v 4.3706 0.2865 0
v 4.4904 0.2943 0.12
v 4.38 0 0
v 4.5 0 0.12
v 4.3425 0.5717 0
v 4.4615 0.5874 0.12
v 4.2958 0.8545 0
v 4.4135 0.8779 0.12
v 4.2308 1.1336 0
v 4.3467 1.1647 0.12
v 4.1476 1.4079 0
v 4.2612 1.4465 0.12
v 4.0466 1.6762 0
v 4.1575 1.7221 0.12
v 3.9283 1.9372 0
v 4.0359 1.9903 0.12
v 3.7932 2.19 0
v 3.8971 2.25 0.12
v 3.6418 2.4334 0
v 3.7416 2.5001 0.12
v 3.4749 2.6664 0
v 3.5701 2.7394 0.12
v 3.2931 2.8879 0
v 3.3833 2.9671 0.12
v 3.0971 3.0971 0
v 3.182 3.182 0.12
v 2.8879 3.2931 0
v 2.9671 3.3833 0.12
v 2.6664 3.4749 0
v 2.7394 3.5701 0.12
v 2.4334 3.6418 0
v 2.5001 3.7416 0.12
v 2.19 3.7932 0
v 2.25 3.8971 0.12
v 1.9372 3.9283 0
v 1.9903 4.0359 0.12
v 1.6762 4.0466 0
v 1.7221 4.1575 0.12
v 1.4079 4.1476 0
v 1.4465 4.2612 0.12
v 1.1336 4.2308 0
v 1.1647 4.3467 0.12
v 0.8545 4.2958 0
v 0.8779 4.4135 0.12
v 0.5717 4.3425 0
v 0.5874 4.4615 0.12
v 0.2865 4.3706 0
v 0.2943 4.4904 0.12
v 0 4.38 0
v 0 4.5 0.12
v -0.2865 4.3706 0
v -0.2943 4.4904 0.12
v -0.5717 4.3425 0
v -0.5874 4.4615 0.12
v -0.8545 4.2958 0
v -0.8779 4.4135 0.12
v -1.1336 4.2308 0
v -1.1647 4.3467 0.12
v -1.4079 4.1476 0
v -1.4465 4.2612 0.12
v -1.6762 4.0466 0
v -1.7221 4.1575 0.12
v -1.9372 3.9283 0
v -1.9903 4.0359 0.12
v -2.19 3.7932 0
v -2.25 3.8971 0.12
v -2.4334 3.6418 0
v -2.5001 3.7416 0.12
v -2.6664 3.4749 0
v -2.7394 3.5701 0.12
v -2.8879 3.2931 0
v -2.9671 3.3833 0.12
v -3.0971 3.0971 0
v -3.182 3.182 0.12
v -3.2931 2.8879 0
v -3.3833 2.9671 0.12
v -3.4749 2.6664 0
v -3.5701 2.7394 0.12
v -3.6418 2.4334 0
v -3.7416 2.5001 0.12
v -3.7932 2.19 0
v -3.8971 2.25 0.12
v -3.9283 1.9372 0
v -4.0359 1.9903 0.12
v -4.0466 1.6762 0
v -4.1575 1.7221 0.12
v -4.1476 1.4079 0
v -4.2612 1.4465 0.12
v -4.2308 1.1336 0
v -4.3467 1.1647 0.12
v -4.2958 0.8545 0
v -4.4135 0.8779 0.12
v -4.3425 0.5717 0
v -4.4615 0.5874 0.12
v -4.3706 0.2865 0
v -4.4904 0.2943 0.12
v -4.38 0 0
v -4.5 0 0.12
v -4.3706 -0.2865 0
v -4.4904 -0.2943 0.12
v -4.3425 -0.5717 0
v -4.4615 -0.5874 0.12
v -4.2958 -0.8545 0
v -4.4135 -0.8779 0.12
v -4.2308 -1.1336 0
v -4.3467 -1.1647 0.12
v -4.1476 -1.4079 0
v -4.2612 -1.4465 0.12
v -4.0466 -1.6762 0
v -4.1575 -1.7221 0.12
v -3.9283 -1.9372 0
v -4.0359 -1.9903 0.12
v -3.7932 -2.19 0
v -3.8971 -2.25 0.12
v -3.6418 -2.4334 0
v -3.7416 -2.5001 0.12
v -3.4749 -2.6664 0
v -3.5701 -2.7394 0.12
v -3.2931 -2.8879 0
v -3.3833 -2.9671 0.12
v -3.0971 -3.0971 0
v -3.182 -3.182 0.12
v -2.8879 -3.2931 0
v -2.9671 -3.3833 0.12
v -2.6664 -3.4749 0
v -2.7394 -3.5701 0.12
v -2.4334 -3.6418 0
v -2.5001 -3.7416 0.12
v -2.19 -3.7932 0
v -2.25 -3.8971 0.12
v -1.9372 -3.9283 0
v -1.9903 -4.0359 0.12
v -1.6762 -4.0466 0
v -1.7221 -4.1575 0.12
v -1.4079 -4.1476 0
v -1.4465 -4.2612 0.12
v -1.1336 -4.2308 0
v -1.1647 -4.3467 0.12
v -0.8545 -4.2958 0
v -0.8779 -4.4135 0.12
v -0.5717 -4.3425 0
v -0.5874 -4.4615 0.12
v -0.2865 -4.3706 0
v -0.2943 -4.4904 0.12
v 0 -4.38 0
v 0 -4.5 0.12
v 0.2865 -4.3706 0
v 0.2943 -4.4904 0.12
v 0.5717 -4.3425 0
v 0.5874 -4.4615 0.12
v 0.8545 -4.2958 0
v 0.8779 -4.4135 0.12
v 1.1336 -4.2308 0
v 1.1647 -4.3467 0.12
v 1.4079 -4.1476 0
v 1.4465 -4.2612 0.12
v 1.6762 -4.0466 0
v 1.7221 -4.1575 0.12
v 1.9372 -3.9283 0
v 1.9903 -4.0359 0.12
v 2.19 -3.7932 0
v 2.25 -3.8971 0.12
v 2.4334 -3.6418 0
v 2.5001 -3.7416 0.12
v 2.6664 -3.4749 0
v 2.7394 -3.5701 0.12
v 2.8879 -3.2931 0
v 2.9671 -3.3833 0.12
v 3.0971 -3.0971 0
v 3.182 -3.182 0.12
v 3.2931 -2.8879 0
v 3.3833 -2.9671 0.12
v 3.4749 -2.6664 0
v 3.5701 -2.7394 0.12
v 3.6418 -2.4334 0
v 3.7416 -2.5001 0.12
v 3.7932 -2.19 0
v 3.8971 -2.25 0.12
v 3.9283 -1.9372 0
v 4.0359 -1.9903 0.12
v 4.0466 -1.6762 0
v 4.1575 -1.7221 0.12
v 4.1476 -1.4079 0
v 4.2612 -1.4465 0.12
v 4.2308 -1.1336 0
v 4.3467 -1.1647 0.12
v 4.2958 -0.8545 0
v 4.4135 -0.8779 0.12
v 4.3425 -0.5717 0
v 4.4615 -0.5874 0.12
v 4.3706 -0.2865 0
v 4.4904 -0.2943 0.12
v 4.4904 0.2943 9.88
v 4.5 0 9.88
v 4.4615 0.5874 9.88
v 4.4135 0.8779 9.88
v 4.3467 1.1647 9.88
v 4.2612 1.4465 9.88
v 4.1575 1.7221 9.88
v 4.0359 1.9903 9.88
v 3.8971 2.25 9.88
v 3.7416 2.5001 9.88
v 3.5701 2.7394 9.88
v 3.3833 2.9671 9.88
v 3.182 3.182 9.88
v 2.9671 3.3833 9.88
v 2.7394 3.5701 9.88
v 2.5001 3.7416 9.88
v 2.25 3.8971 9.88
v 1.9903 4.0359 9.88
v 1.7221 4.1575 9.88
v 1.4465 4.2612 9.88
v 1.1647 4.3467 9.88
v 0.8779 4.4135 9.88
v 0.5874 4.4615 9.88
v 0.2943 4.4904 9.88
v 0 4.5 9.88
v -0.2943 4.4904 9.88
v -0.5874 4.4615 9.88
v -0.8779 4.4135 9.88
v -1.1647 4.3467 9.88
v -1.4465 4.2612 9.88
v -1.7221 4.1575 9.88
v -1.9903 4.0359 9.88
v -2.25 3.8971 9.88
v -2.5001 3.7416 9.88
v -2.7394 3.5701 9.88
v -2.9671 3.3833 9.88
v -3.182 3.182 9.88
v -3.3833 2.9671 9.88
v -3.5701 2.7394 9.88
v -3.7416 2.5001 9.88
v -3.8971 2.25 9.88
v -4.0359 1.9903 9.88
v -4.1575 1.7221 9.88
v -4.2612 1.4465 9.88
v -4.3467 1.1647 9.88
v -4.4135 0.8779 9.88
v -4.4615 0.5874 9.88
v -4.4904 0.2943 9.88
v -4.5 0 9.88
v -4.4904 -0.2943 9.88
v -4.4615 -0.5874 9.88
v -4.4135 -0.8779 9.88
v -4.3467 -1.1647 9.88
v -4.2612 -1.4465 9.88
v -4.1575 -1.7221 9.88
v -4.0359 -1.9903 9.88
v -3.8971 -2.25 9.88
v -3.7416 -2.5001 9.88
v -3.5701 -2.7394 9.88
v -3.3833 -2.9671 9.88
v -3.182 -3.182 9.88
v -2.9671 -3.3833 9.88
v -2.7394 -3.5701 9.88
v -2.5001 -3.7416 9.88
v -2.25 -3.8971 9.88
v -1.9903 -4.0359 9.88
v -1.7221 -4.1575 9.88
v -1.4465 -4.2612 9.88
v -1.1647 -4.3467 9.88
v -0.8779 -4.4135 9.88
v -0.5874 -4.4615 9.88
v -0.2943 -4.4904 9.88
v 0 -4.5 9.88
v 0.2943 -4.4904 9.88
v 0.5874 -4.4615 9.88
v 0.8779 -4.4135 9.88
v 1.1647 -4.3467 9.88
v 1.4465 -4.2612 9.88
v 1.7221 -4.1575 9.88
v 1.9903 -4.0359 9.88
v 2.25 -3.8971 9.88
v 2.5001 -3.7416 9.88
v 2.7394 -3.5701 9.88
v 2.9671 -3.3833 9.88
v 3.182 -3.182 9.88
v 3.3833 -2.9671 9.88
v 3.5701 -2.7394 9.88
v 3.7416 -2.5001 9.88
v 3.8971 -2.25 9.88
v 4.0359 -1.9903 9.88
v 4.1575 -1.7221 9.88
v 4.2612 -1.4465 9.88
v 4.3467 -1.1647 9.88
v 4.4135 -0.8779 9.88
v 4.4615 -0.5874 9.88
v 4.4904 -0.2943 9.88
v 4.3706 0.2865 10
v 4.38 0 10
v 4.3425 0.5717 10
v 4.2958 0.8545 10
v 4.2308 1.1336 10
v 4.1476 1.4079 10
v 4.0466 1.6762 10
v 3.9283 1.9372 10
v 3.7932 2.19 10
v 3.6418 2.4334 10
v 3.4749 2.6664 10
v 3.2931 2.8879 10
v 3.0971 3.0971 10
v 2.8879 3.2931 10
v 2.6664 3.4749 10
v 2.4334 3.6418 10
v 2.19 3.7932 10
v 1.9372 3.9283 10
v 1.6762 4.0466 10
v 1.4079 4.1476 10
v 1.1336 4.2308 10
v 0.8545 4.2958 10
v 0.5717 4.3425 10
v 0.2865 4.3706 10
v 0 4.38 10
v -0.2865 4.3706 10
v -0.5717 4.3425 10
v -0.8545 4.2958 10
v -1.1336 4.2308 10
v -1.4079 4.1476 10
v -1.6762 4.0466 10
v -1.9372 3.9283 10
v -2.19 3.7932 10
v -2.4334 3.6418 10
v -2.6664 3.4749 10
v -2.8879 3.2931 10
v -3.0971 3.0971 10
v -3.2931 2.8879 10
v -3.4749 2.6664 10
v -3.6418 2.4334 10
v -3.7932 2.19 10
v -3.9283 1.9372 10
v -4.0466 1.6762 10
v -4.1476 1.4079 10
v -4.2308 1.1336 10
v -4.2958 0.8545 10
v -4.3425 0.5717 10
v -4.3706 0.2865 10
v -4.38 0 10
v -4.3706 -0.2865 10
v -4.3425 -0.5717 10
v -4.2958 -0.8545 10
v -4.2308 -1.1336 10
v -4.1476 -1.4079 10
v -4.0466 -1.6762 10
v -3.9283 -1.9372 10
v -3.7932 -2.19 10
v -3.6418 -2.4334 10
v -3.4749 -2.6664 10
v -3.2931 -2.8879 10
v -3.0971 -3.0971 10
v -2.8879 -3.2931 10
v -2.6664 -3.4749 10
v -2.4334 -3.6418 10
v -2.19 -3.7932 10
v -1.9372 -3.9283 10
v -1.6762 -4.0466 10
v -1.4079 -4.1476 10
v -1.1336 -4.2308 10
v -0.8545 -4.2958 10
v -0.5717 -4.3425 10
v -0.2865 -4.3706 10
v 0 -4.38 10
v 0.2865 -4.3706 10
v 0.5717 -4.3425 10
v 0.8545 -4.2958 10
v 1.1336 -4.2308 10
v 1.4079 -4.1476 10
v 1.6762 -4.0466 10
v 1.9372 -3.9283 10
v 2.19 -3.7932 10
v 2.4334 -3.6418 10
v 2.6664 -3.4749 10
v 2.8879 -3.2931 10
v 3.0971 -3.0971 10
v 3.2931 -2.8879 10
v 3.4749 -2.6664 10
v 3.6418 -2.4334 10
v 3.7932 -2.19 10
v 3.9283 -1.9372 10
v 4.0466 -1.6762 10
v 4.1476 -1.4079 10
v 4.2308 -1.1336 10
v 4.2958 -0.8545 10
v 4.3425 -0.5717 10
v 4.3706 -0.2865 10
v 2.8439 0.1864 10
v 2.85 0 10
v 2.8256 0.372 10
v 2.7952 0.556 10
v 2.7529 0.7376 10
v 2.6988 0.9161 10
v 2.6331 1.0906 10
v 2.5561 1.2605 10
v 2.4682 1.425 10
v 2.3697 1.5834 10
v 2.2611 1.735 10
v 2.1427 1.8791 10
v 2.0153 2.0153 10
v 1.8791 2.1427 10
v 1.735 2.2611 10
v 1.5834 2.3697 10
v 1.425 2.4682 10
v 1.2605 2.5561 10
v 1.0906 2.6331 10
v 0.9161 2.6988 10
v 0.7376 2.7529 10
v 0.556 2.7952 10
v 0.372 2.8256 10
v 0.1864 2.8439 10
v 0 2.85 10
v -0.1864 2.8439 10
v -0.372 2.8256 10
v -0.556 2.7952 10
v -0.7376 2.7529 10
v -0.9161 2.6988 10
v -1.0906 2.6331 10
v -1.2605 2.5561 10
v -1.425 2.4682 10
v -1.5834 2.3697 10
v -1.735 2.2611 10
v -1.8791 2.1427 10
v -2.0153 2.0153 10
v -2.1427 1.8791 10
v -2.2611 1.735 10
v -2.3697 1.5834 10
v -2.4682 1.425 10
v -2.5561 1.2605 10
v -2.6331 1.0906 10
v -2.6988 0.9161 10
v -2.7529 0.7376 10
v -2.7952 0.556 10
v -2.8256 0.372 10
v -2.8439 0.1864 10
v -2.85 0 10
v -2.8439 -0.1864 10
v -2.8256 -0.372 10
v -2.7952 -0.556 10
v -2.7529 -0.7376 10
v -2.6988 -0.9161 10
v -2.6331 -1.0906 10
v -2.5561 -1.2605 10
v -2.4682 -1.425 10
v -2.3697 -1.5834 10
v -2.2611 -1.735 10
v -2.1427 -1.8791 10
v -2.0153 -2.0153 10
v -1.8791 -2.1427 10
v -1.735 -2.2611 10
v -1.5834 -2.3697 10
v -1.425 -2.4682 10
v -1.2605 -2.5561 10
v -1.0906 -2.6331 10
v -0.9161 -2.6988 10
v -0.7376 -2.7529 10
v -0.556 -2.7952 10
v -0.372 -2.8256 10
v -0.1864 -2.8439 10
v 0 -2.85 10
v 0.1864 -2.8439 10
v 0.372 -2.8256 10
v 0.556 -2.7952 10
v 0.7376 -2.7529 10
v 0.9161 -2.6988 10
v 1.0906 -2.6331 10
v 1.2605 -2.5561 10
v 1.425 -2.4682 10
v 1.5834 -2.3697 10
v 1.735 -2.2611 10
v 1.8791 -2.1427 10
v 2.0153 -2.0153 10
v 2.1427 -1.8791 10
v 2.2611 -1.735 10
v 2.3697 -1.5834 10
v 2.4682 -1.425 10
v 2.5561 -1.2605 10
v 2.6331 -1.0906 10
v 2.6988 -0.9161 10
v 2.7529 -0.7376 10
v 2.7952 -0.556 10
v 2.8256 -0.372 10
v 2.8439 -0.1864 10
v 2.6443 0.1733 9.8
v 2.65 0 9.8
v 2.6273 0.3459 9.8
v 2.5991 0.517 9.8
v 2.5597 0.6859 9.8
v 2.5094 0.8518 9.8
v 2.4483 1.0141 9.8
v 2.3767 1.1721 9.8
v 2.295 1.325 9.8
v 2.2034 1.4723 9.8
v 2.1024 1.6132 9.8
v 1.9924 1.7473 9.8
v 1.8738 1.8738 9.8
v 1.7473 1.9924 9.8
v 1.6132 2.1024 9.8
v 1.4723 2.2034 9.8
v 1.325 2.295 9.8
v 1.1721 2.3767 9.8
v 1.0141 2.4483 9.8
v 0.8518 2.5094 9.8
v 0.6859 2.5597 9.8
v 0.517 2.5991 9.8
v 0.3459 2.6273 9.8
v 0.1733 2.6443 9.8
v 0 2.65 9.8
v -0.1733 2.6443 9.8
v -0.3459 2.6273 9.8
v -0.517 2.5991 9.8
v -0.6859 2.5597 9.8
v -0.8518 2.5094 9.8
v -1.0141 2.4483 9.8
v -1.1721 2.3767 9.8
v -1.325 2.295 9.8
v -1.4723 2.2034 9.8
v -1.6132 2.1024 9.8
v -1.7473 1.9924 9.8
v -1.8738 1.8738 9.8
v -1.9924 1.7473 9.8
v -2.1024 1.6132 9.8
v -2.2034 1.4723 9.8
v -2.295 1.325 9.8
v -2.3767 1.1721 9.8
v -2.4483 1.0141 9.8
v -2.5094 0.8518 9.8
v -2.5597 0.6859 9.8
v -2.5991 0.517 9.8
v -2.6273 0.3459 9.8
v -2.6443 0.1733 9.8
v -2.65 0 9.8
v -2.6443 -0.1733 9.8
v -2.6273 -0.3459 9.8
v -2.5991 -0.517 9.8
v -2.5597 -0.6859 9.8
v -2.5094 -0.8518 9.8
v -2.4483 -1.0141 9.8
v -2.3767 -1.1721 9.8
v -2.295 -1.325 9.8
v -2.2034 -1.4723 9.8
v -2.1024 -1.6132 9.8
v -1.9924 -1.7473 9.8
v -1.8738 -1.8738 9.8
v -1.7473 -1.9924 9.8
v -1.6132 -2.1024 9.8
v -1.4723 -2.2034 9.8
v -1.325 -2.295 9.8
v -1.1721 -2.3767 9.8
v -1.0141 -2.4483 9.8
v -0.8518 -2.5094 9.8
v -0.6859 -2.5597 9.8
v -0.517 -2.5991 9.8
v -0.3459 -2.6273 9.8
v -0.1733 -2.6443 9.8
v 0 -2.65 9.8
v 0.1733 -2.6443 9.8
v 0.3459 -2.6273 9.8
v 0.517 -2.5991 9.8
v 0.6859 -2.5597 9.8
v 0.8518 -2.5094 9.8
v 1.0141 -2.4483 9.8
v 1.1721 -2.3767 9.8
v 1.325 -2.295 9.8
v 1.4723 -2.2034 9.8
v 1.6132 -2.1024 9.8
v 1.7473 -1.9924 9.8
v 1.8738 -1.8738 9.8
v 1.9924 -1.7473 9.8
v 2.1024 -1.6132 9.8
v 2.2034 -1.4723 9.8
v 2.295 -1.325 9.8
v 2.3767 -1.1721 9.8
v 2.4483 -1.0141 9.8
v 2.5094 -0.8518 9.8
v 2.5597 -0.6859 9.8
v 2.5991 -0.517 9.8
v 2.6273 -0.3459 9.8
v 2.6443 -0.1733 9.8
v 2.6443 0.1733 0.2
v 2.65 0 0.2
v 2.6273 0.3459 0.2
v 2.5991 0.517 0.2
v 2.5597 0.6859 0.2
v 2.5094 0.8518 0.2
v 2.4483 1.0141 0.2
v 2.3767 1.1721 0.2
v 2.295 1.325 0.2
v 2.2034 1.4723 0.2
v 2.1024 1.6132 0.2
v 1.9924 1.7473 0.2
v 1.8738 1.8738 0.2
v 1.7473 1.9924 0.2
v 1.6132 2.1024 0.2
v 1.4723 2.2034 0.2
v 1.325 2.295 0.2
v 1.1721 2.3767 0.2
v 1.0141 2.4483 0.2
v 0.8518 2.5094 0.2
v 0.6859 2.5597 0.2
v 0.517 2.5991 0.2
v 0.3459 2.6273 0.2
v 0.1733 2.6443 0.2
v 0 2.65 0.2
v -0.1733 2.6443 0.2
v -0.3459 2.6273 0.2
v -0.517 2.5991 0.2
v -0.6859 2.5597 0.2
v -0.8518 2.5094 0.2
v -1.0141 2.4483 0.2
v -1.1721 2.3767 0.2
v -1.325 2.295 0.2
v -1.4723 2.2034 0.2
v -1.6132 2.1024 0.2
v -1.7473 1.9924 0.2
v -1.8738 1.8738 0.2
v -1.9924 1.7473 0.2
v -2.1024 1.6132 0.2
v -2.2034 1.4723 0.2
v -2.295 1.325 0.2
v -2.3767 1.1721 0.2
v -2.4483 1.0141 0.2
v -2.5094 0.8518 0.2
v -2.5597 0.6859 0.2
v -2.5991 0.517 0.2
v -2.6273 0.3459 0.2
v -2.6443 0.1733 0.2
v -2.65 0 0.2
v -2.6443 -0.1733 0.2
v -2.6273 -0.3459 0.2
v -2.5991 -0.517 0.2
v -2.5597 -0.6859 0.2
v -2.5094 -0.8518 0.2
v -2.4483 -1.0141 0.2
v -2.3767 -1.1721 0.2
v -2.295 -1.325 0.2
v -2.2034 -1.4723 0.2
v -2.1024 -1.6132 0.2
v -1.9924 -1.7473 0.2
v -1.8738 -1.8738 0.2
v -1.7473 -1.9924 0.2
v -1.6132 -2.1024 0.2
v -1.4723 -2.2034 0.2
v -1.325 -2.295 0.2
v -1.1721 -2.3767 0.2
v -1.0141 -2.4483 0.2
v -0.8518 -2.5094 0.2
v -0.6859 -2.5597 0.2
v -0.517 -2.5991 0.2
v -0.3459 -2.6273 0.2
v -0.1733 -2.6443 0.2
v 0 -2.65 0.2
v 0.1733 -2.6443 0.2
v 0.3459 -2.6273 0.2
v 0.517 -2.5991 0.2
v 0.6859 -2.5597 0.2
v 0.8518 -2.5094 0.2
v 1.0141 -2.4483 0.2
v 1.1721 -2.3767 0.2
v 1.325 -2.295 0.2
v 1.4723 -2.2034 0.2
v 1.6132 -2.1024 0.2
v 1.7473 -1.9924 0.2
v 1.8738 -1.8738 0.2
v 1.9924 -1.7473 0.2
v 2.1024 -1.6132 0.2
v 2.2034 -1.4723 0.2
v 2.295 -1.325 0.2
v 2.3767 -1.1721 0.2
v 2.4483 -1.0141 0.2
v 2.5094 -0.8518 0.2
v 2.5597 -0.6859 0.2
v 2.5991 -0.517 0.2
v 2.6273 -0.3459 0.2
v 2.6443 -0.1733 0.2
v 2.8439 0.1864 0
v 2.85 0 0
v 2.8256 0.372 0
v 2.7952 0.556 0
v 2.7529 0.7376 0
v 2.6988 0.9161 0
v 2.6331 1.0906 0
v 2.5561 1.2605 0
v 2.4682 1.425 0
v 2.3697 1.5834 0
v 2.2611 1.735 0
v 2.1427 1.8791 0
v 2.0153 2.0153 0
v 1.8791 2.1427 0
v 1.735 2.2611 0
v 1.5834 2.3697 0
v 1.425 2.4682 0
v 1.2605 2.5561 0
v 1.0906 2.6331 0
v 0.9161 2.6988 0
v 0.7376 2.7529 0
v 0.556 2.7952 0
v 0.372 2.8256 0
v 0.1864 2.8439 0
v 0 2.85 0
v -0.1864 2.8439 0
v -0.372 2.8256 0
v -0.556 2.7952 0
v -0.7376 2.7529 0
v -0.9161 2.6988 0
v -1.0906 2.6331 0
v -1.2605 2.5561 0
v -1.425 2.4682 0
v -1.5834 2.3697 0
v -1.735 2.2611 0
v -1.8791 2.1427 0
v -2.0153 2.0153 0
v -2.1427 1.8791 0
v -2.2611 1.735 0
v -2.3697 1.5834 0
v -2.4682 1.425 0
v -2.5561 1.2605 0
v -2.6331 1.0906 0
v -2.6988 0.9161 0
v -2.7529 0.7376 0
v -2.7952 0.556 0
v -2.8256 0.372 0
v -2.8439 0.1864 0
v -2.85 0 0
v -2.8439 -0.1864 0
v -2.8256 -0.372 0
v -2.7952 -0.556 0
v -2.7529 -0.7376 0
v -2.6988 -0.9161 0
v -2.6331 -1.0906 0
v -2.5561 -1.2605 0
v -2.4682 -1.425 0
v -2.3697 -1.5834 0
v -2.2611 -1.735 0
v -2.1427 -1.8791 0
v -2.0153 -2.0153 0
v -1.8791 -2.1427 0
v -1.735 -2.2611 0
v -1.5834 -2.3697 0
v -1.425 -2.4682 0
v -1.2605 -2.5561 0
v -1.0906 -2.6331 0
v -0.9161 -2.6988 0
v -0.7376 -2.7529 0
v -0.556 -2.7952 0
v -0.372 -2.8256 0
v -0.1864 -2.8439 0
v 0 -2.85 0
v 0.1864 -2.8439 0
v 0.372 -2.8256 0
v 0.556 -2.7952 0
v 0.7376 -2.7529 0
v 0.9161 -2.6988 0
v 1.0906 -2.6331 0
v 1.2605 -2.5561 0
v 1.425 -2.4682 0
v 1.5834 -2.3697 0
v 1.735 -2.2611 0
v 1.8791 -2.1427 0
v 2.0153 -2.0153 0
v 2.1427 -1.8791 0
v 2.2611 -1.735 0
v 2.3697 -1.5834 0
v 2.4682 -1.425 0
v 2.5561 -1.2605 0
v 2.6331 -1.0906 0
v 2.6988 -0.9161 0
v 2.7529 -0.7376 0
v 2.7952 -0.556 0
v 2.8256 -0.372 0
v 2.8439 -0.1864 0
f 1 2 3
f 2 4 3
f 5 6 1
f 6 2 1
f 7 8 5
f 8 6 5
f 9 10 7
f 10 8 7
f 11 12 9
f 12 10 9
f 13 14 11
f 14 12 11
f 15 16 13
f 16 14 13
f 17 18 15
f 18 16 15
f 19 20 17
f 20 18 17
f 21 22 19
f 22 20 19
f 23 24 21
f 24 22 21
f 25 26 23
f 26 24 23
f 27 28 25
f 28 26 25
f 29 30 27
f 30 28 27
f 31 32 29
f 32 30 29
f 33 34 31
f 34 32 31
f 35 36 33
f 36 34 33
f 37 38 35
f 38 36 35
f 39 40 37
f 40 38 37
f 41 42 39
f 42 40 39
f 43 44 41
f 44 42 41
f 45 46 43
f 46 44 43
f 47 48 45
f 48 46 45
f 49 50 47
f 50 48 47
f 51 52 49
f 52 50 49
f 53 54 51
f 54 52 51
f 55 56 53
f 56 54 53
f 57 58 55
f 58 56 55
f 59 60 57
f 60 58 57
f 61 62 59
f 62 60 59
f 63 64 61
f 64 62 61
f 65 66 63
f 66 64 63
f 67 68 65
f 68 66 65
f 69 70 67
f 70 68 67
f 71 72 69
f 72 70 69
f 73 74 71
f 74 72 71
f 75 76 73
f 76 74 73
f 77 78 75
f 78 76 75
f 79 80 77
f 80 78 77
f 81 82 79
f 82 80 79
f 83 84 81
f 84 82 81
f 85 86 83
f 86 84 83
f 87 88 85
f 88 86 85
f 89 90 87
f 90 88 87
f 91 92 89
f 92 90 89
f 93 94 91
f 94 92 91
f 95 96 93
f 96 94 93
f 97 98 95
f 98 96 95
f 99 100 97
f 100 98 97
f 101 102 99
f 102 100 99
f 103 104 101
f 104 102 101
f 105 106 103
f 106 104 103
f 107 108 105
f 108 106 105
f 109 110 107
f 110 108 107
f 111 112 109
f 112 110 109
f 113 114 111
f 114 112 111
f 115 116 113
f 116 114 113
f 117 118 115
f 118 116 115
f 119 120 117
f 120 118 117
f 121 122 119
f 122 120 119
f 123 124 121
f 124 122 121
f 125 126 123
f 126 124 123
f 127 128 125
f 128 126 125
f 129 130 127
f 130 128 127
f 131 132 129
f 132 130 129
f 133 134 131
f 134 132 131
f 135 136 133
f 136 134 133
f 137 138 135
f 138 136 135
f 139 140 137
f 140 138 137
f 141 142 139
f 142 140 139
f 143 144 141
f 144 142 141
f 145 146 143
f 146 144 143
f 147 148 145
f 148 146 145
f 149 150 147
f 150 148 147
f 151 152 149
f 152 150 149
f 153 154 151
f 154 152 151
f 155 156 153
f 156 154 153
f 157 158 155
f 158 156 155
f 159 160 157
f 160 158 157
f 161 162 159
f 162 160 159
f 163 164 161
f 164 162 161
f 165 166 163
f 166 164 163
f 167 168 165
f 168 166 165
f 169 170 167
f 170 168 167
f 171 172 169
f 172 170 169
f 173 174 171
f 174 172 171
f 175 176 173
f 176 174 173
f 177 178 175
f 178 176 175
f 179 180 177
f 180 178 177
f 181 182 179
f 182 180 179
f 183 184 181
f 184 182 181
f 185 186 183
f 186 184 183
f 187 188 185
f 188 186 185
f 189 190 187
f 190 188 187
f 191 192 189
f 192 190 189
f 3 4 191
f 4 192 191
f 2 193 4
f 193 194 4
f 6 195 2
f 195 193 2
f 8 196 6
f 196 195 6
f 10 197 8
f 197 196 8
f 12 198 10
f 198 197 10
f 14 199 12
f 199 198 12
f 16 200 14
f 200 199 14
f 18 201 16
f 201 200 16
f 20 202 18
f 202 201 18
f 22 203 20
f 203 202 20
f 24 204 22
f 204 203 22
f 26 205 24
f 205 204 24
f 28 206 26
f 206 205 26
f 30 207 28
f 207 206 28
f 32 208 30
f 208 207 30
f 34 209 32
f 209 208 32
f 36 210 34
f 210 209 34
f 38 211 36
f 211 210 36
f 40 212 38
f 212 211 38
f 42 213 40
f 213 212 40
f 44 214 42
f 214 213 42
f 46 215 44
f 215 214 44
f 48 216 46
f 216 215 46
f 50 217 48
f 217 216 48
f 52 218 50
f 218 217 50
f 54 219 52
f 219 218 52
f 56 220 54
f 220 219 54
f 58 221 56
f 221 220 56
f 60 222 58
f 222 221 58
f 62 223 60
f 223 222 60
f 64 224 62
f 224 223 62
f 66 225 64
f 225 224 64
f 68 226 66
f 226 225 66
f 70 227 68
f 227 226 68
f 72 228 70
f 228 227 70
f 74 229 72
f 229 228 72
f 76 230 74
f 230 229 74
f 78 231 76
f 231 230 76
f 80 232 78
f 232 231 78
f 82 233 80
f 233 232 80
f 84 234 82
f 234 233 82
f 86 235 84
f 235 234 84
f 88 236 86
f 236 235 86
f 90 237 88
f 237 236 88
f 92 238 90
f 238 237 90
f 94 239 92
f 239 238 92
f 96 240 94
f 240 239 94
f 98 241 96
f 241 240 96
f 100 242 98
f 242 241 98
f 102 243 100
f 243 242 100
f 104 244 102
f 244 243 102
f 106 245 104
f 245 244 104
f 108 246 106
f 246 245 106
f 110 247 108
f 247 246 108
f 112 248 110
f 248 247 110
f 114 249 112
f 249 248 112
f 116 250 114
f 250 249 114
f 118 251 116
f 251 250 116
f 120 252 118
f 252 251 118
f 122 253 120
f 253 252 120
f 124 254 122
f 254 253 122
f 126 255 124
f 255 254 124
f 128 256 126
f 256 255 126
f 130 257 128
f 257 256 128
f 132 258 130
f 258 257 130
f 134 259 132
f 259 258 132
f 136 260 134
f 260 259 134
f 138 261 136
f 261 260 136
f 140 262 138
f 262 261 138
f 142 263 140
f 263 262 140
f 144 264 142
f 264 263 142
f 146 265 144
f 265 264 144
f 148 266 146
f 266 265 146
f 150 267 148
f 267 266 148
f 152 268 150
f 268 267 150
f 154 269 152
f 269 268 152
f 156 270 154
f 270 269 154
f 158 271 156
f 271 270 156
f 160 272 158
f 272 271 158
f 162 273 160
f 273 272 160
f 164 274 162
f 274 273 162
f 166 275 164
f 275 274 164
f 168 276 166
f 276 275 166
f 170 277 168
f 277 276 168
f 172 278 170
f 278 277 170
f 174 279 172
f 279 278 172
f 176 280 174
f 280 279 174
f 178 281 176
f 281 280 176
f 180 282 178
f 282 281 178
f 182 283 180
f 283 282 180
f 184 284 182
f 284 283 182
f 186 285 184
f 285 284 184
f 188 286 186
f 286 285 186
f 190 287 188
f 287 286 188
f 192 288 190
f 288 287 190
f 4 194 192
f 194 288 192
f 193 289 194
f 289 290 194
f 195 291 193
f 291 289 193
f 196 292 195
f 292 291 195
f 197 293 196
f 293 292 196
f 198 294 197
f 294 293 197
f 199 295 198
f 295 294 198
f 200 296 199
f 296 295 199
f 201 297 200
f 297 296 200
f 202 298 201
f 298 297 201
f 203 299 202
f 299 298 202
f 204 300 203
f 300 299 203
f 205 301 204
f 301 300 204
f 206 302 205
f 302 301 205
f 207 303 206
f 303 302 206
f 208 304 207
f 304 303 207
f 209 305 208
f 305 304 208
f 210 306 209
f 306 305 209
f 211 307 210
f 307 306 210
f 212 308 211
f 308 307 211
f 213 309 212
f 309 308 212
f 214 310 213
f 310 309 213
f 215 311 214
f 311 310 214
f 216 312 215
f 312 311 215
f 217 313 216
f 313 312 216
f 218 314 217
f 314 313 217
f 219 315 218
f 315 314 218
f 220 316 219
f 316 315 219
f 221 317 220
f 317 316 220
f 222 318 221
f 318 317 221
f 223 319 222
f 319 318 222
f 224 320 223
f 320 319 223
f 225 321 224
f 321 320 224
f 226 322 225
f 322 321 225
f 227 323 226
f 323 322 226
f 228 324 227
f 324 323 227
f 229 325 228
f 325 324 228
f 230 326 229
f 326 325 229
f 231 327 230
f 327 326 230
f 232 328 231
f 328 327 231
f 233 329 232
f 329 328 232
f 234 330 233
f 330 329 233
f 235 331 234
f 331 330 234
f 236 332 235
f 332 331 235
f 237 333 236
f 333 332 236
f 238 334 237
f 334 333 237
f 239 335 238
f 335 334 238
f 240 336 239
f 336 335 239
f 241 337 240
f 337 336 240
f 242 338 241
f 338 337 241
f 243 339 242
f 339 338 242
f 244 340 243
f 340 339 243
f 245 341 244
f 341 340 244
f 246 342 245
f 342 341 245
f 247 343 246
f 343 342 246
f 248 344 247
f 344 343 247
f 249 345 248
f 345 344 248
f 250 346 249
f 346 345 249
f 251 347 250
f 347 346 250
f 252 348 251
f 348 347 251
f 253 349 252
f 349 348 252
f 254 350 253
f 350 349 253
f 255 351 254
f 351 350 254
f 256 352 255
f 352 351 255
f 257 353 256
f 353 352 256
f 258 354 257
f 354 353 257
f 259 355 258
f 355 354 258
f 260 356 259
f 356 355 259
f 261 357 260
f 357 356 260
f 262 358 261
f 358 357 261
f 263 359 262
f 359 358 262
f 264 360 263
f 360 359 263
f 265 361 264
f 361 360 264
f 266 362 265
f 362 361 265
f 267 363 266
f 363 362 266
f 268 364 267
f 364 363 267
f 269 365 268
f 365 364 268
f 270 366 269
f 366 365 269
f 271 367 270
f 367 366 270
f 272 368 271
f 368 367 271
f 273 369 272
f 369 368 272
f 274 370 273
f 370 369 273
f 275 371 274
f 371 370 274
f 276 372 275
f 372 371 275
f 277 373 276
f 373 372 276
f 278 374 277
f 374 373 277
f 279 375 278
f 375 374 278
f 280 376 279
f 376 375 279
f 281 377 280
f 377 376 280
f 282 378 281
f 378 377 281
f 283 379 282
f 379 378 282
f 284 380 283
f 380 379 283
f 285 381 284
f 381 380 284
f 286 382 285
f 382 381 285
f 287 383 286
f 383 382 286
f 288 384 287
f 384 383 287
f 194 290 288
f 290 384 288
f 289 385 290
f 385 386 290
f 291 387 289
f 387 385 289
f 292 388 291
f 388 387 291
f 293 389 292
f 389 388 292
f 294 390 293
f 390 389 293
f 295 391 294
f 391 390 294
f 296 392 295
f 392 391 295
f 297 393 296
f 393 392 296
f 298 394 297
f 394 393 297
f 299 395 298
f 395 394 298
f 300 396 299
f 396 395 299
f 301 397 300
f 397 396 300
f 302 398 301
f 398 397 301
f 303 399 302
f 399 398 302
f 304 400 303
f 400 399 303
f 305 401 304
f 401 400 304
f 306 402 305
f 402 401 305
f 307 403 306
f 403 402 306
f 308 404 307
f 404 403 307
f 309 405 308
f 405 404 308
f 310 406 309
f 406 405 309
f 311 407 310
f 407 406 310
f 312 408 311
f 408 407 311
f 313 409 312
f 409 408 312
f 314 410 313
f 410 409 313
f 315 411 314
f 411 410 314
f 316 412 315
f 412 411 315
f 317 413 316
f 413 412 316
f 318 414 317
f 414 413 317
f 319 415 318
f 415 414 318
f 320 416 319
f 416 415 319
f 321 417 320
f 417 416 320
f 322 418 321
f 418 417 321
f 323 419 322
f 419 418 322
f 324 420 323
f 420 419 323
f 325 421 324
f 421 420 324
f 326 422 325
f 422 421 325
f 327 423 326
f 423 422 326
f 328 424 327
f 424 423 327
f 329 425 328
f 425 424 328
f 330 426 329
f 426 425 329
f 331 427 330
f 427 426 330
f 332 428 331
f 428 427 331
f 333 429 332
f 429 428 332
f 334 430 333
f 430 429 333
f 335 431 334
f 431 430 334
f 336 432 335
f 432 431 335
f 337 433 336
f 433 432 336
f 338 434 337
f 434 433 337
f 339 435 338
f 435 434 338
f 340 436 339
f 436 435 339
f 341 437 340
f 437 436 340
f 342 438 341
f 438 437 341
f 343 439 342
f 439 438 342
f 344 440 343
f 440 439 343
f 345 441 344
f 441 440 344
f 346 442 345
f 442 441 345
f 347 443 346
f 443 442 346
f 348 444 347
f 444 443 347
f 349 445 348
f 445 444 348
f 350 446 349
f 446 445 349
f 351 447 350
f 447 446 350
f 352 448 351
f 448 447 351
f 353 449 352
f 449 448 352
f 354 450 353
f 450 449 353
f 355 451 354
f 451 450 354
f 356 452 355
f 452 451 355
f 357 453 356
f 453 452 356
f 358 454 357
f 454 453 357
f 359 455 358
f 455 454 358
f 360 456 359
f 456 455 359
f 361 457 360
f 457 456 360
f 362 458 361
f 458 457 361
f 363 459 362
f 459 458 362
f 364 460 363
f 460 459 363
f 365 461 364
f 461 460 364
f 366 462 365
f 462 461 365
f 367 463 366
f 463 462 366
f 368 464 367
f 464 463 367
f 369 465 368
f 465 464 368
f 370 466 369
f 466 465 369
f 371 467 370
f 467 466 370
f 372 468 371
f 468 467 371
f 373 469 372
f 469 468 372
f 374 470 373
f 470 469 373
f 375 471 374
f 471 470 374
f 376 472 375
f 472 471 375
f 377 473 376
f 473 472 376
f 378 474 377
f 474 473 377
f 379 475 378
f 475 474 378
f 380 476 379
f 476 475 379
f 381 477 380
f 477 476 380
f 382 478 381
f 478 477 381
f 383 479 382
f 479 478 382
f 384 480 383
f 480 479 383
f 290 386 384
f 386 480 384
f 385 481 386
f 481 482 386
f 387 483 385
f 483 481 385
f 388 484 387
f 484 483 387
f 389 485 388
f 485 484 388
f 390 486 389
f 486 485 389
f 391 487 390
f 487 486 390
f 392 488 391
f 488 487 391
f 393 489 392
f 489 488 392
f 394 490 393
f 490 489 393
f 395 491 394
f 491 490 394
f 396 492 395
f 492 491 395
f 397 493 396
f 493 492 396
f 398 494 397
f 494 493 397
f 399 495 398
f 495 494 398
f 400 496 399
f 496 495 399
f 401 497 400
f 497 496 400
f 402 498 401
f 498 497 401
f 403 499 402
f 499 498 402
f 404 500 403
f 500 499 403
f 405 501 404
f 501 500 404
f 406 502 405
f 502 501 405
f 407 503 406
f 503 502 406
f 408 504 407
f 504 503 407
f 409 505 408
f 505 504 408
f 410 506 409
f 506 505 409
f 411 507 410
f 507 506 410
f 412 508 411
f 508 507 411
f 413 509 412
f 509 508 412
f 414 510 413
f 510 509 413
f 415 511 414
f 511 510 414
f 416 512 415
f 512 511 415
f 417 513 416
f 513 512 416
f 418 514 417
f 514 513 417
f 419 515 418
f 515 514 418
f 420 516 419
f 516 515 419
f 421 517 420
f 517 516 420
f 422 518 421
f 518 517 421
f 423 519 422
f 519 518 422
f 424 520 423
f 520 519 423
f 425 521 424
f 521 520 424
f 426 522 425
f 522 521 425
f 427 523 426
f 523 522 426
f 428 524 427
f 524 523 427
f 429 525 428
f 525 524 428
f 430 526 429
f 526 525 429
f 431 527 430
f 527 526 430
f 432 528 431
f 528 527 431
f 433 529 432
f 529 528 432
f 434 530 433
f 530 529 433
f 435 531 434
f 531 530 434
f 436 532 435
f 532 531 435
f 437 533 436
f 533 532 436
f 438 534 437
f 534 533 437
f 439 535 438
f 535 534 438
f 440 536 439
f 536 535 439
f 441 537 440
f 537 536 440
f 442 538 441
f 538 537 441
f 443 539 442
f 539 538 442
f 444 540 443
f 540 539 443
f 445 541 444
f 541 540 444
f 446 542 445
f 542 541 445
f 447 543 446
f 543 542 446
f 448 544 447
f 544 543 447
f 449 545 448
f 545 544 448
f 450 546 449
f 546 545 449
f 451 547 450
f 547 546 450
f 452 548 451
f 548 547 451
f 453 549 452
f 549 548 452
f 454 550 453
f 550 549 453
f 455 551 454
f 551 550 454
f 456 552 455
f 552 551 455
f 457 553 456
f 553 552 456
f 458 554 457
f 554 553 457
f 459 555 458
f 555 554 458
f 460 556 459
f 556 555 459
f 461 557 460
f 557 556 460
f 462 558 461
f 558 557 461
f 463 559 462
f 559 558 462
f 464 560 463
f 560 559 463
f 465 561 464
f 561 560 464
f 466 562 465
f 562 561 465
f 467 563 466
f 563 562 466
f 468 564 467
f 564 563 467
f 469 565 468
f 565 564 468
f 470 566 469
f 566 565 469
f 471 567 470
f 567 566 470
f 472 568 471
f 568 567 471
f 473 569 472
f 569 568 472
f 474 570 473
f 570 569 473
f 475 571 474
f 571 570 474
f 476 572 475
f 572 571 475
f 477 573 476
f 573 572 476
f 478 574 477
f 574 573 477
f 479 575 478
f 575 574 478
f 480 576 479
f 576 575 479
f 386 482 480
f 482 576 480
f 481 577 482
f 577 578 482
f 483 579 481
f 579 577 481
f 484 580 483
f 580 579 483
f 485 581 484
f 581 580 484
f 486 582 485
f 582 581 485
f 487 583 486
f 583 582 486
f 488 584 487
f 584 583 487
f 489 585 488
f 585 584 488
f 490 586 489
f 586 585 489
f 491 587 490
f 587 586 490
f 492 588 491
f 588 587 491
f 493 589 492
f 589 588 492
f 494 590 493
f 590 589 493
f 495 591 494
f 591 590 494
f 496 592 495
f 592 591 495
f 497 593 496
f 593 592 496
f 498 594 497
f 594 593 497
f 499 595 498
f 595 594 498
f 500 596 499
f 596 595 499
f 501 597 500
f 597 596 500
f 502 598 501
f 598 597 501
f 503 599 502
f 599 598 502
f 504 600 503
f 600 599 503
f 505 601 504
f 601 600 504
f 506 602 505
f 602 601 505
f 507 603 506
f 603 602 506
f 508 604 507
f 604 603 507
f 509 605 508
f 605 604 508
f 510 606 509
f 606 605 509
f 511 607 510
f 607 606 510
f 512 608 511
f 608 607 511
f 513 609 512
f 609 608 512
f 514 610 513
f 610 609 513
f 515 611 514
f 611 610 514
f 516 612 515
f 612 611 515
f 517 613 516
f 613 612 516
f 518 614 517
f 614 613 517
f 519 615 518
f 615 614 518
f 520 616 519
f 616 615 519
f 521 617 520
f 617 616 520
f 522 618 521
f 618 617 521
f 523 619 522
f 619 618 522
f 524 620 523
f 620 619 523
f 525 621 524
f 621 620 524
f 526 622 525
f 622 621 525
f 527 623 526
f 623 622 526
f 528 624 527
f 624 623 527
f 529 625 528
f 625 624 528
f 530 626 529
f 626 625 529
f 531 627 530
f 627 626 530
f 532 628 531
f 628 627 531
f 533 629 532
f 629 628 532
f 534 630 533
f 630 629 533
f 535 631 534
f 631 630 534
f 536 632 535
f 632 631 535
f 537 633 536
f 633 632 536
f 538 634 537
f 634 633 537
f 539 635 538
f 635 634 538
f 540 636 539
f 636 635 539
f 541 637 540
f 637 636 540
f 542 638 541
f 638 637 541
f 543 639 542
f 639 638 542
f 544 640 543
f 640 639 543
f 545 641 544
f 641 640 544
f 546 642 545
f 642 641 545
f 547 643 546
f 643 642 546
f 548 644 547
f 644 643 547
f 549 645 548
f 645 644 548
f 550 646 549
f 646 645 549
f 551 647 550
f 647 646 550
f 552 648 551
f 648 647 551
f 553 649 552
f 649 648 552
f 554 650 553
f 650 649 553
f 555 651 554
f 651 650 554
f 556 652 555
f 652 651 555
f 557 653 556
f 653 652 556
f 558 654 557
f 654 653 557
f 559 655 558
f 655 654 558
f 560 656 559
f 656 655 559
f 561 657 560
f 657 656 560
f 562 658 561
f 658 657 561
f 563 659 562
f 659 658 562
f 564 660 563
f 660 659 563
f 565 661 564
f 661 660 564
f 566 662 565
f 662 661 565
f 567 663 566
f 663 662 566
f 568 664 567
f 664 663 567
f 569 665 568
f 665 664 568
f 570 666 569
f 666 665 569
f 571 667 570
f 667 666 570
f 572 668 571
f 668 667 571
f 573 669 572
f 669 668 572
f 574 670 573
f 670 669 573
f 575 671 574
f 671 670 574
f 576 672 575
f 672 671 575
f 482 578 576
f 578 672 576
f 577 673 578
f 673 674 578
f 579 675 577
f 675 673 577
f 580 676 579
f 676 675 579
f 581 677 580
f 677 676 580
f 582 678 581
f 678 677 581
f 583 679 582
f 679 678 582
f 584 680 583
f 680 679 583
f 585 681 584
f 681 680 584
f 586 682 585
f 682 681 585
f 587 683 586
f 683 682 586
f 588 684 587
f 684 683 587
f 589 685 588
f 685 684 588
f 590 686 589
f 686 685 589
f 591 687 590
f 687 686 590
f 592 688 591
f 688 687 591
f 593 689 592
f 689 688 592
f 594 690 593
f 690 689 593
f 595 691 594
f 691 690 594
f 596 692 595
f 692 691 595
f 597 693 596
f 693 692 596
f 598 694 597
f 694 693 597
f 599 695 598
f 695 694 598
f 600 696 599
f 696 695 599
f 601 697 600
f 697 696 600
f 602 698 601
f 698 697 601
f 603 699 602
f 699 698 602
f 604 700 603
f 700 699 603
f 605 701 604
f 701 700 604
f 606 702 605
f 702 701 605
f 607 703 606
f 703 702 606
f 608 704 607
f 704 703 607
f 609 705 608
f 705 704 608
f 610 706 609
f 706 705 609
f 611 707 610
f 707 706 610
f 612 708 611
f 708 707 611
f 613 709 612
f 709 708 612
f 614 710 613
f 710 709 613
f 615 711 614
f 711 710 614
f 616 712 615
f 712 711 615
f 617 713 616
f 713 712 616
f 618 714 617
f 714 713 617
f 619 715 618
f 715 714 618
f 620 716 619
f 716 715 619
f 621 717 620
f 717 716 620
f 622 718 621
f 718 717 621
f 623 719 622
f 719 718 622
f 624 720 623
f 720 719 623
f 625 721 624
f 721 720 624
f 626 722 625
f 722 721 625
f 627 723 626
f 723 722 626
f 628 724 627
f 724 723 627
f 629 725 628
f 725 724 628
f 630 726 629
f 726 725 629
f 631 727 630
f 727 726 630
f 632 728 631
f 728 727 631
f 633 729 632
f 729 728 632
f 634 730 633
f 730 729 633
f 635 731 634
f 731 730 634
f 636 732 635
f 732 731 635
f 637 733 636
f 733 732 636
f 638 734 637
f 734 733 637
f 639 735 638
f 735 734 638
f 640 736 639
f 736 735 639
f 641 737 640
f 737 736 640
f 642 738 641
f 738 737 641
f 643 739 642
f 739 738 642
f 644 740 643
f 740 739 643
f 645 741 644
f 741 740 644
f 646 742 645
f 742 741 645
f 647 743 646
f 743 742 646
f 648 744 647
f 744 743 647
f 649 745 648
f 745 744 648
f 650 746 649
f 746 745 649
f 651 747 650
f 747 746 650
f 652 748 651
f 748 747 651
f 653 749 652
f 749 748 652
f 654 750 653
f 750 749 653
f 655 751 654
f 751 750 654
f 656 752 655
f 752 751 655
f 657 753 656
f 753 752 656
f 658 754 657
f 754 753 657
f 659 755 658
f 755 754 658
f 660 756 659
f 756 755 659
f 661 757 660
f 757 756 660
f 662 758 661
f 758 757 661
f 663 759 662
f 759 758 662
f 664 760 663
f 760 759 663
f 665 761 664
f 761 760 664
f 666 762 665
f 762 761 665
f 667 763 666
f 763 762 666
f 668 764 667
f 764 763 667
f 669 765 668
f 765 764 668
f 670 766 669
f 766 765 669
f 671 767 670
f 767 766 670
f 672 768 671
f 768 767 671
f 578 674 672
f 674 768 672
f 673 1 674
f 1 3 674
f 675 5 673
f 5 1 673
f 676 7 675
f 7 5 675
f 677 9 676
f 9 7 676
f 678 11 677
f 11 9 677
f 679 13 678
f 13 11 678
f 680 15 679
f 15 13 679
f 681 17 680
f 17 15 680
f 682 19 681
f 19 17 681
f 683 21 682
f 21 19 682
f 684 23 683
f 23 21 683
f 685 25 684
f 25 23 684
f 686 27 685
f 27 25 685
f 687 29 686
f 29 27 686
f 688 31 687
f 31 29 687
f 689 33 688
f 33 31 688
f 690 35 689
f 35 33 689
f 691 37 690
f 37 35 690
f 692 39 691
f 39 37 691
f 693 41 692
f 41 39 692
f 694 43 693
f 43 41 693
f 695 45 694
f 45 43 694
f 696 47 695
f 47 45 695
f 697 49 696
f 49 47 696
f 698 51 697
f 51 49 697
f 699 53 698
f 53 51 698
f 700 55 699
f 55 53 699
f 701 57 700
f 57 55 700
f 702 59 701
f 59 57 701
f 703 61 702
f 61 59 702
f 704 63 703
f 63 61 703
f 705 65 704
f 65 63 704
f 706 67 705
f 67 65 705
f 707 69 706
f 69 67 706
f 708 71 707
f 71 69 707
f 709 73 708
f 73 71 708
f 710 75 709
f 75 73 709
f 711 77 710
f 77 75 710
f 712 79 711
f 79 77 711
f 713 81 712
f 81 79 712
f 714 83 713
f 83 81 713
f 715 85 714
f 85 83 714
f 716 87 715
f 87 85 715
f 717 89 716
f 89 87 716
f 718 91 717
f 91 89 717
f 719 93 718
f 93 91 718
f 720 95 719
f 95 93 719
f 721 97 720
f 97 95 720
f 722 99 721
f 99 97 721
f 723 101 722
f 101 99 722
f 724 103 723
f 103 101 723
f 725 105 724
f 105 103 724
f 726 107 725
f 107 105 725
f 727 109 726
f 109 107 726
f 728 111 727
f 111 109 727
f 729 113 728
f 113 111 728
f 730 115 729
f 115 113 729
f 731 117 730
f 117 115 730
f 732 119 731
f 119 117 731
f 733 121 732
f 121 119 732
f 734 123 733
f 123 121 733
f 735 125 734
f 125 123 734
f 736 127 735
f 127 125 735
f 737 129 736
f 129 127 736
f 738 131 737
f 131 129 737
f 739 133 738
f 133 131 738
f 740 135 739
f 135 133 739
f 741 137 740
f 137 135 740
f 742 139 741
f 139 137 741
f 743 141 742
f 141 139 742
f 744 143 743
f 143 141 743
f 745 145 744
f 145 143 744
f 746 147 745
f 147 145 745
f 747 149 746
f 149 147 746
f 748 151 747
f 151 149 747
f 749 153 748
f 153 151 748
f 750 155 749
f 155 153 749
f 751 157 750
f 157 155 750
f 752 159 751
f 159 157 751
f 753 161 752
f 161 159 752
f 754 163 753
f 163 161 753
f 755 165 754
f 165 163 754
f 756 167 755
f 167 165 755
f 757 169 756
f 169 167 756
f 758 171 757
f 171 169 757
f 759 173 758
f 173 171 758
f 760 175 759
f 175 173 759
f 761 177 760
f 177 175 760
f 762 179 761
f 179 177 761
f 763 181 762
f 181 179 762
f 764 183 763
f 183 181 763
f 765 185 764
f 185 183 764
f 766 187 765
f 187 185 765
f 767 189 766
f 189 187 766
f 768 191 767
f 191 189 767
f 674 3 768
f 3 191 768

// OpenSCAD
// OOMP generic catalogue model; units: mm.
// Stud length is additional to body depth. Tapping depths are model assumptions.
variant = "full"; // [full, display]
family = "spacer";
connection_type = "plain";
depth_mm = 10;
stud_length_mm = 0;
tapped_depth_mm = 0;
bore_mm = 5.3;
outer_diameter_mm = 9;
across_flats_mm = 6;
thread_nominal_diameter_mm = 3;
thread_pitch_mm = 0.5;
edge_chamfer_mm = 0.12;
mouth_chamfer_mm = 0.2;
angular_segments = 96;
samples_per_pitch = 16;

// Boundary travels up the outside, then down any tapped/plain bore.
// Equal-height rings at shoulders form the annular shoulder faces.
n = angular_segments;
threaded = family == "standoff";
has_stud = connection_type == "stud_to_tapped" || connection_type == "stud_to_stud";
two_studs = connection_type == "stud_to_stud";
through = !threaded || connection_type == "tapped_to_tapped";
pitch = thread_pitch_mm;
diameter = threaded ? thread_nominal_diameter_mm : bore_mm;
minor = diameter - 5*sqrt(3)*pitch/8;
transition = mouth_chamfer_mm + (threaded ? 5*sqrt(3)*pitch/16 : 0);
tip_chamfer = mouth_chamfer_mm + 17*sqrt(3)*pitch/48;
function sorted(v) = len(v)<=1 ? v : let(p=v[0])
    concat(sorted([for(x=v) if(x<p-1e-8) x]), [p], sorted([for(x=v) if(x>p+1e-8) x]));
function reverse(v) = [for(i=[len(v)-1:-1:0]) v[i]];
function theta(i) = i*360/n;
function fract(x) = x-floor(x);
function phase_distance(i,z) = abs(fract(z/pitch-theta(i)/360+0.5)-0.5);
function thread_r(i,z) = minor/2 + min(5*sqrt(3)*pitch/16,
    max(0,(phase_distance(i,z)-0.125)*pitch*sqrt(3)));
function stud_r(i,z,tip) = min(diameter/2 - (variant=="full" ?
    min(17*sqrt(3)*pitch/48,max(0,(phase_distance(i,z)-0.0625)*pitch*sqrt(3))) : 0),
    diameter/2-tip_chamfer+abs(z-tip));
function body_r(i,z) = (threaded ? across_flats_mm/2/cos(theta(i)%60-30) : outer_diameter_mm/2)
    - max(0,edge_chamfer_mm-min(z,depth_mm-z));
function bore_r(i,z) = max(threaded ? (variant=="full" ? thread_r(i,z) : minor/2) : diameter/2,
    diameter/2+mouth_chamfer_mm-(through ? min(z,depth_mm-z) : depth_mm-z));
function stud_z(a,b,tip) = let(count=variant=="full" ? ceil(stud_length_mm/pitch*samples_per_pitch) : 1)
    sorted(concat([for(i=[0:count]) a+(b-a)*i/count], [tip==a ? tip+tip_chamfer : tip-tip_chamfer]));
body_z = sorted([0,edge_chamfer_mm,depth_mm-edge_chamfer_mm,depth_mm]);
low = through ? 0 : depth_mm-tapped_depth_mm;
count = threaded && variant=="full" ? ceil((depth_mm-low)/pitch*samples_per_pitch) : 1;
bore_z = two_studs ? [] : reverse(sorted(concat(
    [for(i=[0:count]) low+(depth_mm-low)*i/count],
    [depth_mm-mouth_chamfer_mm,depth_mm-transition],
    through ? [mouth_chamfer_mm,transition] : [])));
// Ring descriptors: [height, kind, tip]. Kind: 0 body, 1 stud, 2 bore.
rings = concat(
    has_stud ? [for(z=stud_z(-stud_length_mm,0,-stud_length_mm)) [z,1,-stud_length_mm]] : [],
    [for(z=body_z) [z,0,0]],
    two_studs ? [for(z=stud_z(depth_mm,depth_mm+stud_length_mm,depth_mm+stud_length_mm)) [z,1,depth_mm+stud_length_mm]] : [],
    [for(z=bore_z) [z,2,0]]);
function radius(i,ring) = ring[1]==0 ? body_r(i,ring[0]) :
    ring[1]==1 ? stud_r(i,ring[0],ring[2]) : bore_r(i,ring[0]);
points = concat([for(ring=rings) for(i=[0:n-1])
    [radius(i,ring)*cos(theta(i)),radius(i,ring)*sin(theta(i)),ring[0]]],
    through ? [] : [[0,0,rings[0][0]],[0,0,rings[len(rings)-1][0]]]);
center = len(rings)*n;
last = (len(rings)-1)*n;
// OpenSCAD winding is opposite to STL winding.
faces = concat(
    [for(j=[0:len(rings)-(through ? 1 : 2)]) for(i=[0:n-1]) each
        let(a=j*n+i,b=j*n+(i+1)%n,c=((j+1)%len(rings))*n+(i+1)%n,d=((j+1)%len(rings))*n+i)
        [[a,c,b],[a,d,c]]],
    through ? [] : [for(i=[0:n-1]) each let(k=(i+1)%n)
        [[center,i,k],[center+1,last+k,last+i]]]);
assert(family=="spacer" || family=="standoff");
assert(!threaded || connection_type=="tapped_to_tapped" || has_stud);
assert(depth_mm>0 && diameter>0 && pitch>0);
assert(variant=="full" || variant=="display");
assert(n>=24 && n%12==0 && samples_per_pitch>=8);
assert(mouth_chamfer_mm>0 && mouth_chamfer_mm<depth_mm/2);
assert(edge_chamfer_mm>=0 && edge_chamfer_mm<depth_mm/2);
assert(diameter+4*max(mouth_chamfer_mm,edge_chamfer_mm) < (threaded ? across_flats_mm : outer_diameter_mm));
assert(!has_stud || stud_length_mm>2*mouth_chamfer_mm);
assert(!through || !threaded || 2*transition<depth_mm);
assert(connection_type!="stud_to_tapped" || (tapped_depth_mm>transition && tapped_depth_mm<depth_mm));
color([0.86,0.85,0.81]) polyhedron(points=points,faces=faces,convexity=20);
